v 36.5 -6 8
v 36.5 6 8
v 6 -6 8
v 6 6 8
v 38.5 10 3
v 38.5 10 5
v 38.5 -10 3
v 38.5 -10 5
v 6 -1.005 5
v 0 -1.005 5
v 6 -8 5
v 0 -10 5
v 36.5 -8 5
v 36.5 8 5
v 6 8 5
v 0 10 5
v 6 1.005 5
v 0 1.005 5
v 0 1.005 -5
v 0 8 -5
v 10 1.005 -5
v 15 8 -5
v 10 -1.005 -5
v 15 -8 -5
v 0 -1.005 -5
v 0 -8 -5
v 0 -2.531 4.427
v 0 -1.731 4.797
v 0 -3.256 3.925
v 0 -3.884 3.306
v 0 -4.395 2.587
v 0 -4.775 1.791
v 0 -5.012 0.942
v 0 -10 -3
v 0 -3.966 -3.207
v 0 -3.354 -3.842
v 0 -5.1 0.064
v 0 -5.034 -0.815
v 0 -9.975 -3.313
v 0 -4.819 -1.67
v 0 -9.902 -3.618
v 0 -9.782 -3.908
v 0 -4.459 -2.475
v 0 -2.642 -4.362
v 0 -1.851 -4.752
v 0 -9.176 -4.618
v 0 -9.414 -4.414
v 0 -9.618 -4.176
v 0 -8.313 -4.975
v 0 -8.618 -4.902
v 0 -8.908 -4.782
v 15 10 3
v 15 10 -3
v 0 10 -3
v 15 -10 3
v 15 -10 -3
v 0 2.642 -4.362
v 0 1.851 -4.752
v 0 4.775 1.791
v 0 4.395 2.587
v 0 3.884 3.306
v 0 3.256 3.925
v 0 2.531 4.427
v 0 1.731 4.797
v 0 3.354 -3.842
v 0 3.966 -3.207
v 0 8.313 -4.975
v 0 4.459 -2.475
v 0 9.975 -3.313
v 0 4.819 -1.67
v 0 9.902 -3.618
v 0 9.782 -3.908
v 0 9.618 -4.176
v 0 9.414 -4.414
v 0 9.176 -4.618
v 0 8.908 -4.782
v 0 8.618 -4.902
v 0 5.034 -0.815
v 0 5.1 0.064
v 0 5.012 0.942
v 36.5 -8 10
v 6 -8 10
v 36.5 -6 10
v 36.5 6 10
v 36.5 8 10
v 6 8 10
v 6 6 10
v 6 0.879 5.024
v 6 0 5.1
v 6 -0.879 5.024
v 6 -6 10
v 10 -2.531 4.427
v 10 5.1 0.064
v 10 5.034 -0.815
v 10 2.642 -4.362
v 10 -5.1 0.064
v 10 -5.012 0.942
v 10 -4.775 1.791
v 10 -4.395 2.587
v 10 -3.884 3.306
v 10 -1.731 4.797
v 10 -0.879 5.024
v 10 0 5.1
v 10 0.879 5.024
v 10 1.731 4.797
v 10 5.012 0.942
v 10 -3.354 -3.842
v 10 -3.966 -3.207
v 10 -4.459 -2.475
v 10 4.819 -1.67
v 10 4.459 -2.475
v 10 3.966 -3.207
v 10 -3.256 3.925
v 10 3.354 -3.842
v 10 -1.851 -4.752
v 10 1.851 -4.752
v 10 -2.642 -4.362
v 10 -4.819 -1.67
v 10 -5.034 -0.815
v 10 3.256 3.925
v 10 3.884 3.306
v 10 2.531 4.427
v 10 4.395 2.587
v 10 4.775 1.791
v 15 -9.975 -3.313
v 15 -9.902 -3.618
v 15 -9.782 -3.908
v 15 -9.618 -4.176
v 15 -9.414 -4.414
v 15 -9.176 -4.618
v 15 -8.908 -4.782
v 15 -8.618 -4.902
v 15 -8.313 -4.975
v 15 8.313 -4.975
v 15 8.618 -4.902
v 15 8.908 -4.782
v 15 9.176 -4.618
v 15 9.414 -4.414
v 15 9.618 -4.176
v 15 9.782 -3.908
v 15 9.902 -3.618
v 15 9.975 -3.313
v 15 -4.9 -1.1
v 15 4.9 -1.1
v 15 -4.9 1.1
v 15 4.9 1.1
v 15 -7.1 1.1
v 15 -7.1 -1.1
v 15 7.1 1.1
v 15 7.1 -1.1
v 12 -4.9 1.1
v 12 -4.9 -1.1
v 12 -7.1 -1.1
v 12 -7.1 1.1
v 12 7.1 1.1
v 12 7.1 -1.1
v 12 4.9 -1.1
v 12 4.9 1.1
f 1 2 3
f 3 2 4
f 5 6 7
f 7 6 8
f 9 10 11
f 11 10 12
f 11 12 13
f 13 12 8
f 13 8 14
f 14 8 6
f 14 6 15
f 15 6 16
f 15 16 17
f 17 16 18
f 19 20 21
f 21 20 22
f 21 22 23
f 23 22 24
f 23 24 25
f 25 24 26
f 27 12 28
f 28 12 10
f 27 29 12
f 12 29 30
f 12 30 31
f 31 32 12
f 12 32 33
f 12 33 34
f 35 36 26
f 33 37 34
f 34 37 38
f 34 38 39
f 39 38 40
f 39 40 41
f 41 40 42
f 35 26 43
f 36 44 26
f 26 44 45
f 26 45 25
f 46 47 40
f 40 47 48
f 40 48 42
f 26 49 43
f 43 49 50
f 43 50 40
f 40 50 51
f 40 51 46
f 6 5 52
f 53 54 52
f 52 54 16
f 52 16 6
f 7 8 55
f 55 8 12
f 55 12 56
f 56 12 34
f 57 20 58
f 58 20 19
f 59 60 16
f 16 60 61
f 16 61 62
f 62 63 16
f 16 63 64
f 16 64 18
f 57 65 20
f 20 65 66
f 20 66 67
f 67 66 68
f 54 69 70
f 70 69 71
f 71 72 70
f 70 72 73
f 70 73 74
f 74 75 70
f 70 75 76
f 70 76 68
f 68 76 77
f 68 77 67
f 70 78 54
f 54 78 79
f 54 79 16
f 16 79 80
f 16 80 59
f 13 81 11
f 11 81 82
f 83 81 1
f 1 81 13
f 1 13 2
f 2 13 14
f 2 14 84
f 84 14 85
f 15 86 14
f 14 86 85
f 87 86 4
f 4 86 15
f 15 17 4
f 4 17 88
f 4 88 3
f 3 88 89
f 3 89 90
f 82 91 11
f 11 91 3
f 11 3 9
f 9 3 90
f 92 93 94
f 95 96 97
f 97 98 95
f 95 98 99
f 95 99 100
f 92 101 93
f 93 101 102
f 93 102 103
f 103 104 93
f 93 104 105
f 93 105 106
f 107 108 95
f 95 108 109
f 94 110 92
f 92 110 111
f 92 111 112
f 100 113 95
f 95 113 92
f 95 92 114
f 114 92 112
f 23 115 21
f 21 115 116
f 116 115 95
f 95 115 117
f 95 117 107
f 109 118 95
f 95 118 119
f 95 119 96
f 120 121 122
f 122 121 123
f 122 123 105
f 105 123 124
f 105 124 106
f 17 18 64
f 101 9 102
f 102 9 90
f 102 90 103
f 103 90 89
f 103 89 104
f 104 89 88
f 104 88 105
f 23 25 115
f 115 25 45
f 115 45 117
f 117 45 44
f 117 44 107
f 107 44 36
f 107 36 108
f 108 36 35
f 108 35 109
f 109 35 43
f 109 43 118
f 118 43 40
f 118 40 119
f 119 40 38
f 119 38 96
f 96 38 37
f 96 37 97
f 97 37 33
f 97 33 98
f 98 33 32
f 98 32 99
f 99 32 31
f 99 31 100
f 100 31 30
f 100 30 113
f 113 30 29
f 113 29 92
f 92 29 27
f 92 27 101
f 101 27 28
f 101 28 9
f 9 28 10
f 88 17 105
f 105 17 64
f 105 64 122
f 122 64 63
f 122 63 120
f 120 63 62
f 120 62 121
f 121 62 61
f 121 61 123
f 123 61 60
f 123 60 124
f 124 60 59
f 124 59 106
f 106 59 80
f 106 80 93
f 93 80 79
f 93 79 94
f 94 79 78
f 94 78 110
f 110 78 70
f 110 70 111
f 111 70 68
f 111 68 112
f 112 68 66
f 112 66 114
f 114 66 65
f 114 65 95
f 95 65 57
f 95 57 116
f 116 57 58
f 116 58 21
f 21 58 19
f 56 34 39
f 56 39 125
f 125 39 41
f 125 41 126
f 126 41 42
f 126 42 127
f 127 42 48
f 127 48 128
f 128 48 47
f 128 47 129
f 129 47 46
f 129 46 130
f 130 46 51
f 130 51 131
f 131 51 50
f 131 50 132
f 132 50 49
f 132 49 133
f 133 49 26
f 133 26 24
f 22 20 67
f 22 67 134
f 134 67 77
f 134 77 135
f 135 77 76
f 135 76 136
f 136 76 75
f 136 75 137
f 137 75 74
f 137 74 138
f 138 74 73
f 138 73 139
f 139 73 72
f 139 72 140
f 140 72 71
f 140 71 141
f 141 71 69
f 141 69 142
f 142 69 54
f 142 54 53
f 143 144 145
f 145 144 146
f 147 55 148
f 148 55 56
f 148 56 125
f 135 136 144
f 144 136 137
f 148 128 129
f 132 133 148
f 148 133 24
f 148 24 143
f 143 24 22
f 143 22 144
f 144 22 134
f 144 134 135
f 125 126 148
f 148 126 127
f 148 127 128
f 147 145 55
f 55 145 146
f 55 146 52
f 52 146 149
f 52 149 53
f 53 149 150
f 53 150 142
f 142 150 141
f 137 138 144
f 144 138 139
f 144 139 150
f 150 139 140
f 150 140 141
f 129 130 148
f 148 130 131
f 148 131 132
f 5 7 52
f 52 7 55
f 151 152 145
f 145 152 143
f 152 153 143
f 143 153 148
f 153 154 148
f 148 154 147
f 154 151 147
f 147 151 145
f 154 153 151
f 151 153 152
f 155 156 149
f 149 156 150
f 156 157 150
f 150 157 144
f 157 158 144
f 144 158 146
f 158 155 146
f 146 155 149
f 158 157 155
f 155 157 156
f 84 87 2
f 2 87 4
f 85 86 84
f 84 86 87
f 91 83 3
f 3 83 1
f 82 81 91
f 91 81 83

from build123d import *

# Parameters (mm, degrees)
SKETCH1_W           = 20
SKETCH1_H           = 10
BOSS_EXTRUDE1_DEPTH = 38.5
SKETCH5_W           = 16
SKETCH5_H           = 30.5
BOSS_EXTRUDE2_DEPTH = 8
SKETCH2_R           = 5.1
CUT_EXTRUDE3_DEPTH  = 10
FILLET1_R           = 2
SKETCH6_W           = 23.5
SKETCH6_H           = 20
CUT_EXTRUDE4_DEPTH  = 8
SKETCH7_W           = 2.2
SKETCH7_H           = 2.2
CUT_EXTRUDE5_DEPTH  = 3
SKETCH8_W           = 30.5
SKETCH8_H           = 2
BOSS_EXTRUDE3_DEPTH = 2


with BuildPart() as part:
    # Sketch1 → Boss-Extrude1 (new body)
    with BuildSketch(Plane.YZ):
        Rectangle(SKETCH1_W, SKETCH1_H)
    extrude(amount=BOSS_EXTRUDE1_DEPTH)

    # Sketch5 → Boss-Extrude2 (add)
    with BuildSketch(Plane(origin=(0, 0, 0), x_dir=(0, 1, 0), z_dir=(0, 0, 1))):
        with Locations((0, -21.25)):
            Rectangle(SKETCH5_W, SKETCH5_H)
    extrude(amount=BOSS_EXTRUDE2_DEPTH)

    # Sketch2 → Cut-Extrude3 (cut)
    with BuildSketch(Plane.YZ):
        Circle(SKETCH2_R)
    extrude(amount=CUT_EXTRUDE3_DEPTH, mode=Mode.SUBTRACT)

    # Fillet1
    fillet1_edges = [part.edges().sort_by_distance(p)[0] for p in [
        (19.25, 10, -5),
        (19.25, -10, -5),
    ]]
    fillet(fillet1_edges, radius=FILLET1_R)

    # Sketch6 → Cut-Extrude4 (cut)
    with BuildSketch(Plane(origin=(0, 0, -5), x_dir=(1, 0, 0), z_dir=(0, 0, -1))):
        with Locations((26.75, 0)):
            Rectangle(SKETCH6_W, SKETCH6_H)
    extrude(amount=-CUT_EXTRUDE4_DEPTH, mode=Mode.SUBTRACT)

    # Sketch7 → Cut-Extrude5 (cut)
    with BuildSketch(Plane.YZ.offset(15)):
        with Locations((6, 0)):
            Rectangle(SKETCH7_W, SKETCH7_H)
        with Locations((-6, 0)):
            Rectangle(SKETCH7_W, SKETCH7_H)
    extrude(amount=-CUT_EXTRUDE5_DEPTH, mode=Mode.SUBTRACT)

    # Sketch8 → Boss-Extrude3 (add)
    with BuildSketch(Plane.XY.offset(8)):
        with Locations((21.25, 7)):
            Rectangle(SKETCH8_W, SKETCH8_H)
        with Locations((21.25, -7)):
            Rectangle(SKETCH8_W, SKETCH8_H)
    extrude(amount=BOSS_EXTRUDE3_DEPTH)


solid = part.part
